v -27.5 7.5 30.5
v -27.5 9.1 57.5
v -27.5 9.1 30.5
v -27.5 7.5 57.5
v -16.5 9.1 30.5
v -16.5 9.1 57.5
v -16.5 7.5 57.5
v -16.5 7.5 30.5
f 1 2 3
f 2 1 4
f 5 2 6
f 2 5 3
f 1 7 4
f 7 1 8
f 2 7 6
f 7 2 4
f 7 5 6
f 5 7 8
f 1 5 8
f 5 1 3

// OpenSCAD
// file: D:/Projects/assembly-workshop/outputs/Screen_Pi_Hue_SCR5-H_2026-10-30/checks/geometry.scad
// SCR5-G; mm; FRONT view: X right, Z up, Y into rack. Glass/plate front Y=0.
// Measured values: work/screen-5in/Dimensions.md. Physical fit/strength UNKNOWN.
part="plate";
DROP=0.45; // coupon winner can be substituted here; all three pins use this DROP
LIP=0.8; LIP_ON=true;
LIP_EDGES=[true,true,false,false]; // left,right,bottom,top; Brian: side lips only, cosmetic
FRAME_STEP=1.5; // measured glass-edge inset to metal LCD frame, left/right only
SHIM=0; // moves rear frame seat and plate-boss mating face back
$fn=48;
GCX=33; GCZ=41.5; PW=252; PH=88.8; PT=4;
GW=120.7; GH=77.2; CLEAR=0.2; WW=GW+2*CLEAR; WH=GH+2*CLEAR;
SEAT=13.3+SHIM; FT=3;
SO=[56.45,34]; BTN_X=[45.5,35.5,25.5];
PCB_TOP=38; GAP=0.10; LEAF_T=0.8;
HOLE=[3.4,40.3,44.7];
BX=[GCX-68,GCX+68]; BZ=[10,72];
// DSI connector X extent is unmeasured: conservative assumed 8 mm inward from PCB edge.
DSI=[GCX-60.5,9.1,GCZ-38+30,8,5.25,21];
module xz(y,d){translate([0,y+d,0])rotate([90,0,0])linear_extrude(d)children();}
// rr/rack_slots copied from SCR5-F; same exact slot centres, outline shifted -0.05 Z to centre 44.4.
module rr(w,h,r){hull()for(x=[-w/2+r,w/2-r],z=[-h/2+r,h/2-r])translate([x,z])circle(r=r);}
module rack_slots(){for(x=[-118.2625,118.2625],z=[6.323,38.127,50.773,82.577])translate([x,z])hull()for(dx=[-1.5,1.5])translate([dx,0])circle(d=7);}
module cyl_y(x,y,z,d,h){translate([x,y,z])rotate([-90,0,0])cylinder(d=d,h=h);}
module window_cut(){
  xz(-0.02,4.04)translate([GCX,GCZ])square([WW,WH],center=true);
  // 0.3 x 45-degree chamfer, square corners, front only.
  translate([GCX,0.3,GCZ])rotate([90,0,0])
    linear_extrude(height=0.3,scale=[(WW+0.6)/WW,(WH+0.6)/WH])square([WW,WH],center=true);
}
module lips(){
  // Cosmetic side ledges only; rear frame/standoffs set depth and retain the screen.
  if(LIP_ON)for(i=[0:3])if(LIP_EDGES[i]){
    if(i<2)translate([GCX+(i==0?-WW/2:WW/2-LIP),2.5,GCZ-GH/2+4])cube([LIP,0.8,GH-8]);
    else translate([GCX-GW/2+4,2.5,GCZ+(i==2?-WH/2:WH/2-LIP)])cube([GW-8,0.8,LIP]);
  }
}
// Leaf/nub/bump geometry copied from SCR5-WP-A, translated to this glass centre.
module leaves(){for(x=BTN_X)translate([GCX+x-1.5,0,GCZ]){
  translate([0,0,PCB_TOP+GAP+0.9+0.1])cube([3,11.8,LEAF_T]);
  translate([0,10.2,PCB_TOP+GAP])cube([3,1.4,1.0+LEAF_T/2]);
  translate([0,10.4,PCB_TOP+GAP+1.0+LEAF_T])cube([3,1.0,0.9]);
}}
module plate(){difference(){union(){
  difference(){xz(0,PT)translate([0,PH/2])rr(PW,PH,2.5);window_cut();}
  for(x=BX,z=BZ)cyl_y(x,3.9,z,8,SEAT-3.9);
  leaves(); lips();
 }
 xz(-0.02,4.04)rack_slots();
 for(x=BTN_X)translate([GCX+x-HOLE[0]/2,-0.02,GCZ+HOLE[1]])cube([HOLE[0],SEAT+FT+0.04,HOLE[2]-HOLE[1]]);
 // Printed-in screw pilots (no heat-set OD assumption): nominal M2.5, fit UNKNOWN.
 for(x=BX,z=BZ)cyl_y(x,SEAT-6,z,2.1,6.02);
 // Rear engraving, 0.5 deep, left field.
 xz(3.5,0.52)translate([-75,40])mirror([1,0])text("SCR5-G",size=6,halign="center",font="Liberation Sans:style=Bold");
}}
module frame_blank(){
  // C-shaped perimeter; no material across the board centre / touch FPC.
  xz(SEAT,FT)translate([GCX,GCZ])difference(){square([132,76],center=true);square([116,60],center=true);}
  for(sx=[-1,1],sz=[-1,1])cyl_y(GCX+sx*SO[0],SEAT,GCZ+sz*SO[1],9,FT);
  for(x=BX,z=BZ)hull(){cyl_y(x,SEAT,z,8,FT);cyl_y(GCX+(x<GCX?-62:62),SEAT,z,8,FT);}
}
module dsi_keepout(){translate([DSI[0]-3,DSI[1]-3,DSI[2]-3])cube([DSI[3]+6,DSI[4]+6,DSI[5]+6]);}
module ribbon_route(){
  // Open left/up corridor 18 mm wide; extends past top of plate.
  translate([GCX-84,6.1,GCZ-11])cube([18,24,65]);
  translate([GCX-84,6.1,GCZ-11])cube([32,24,27]);
}
module frame(){difference(){frame_blank();dsi_keepout();ribbon_route();
 for(sx=[-1,1],sz=[-1,1])cyl_y(GCX+sx*SO[0],SEAT-0.02,GCZ+sz*SO[1],2.8,FT+0.04);
 for(x=BX,z=BZ)cyl_y(x,SEAT-0.02,z,2.8,FT+0.04);
}}
// Pin polygon/cap/notch/dot design copied unchanged from SCR5-WP-A.
module pin(d,dots){s=2*d+0.5;difference(){union(){
 translate([-1.5,0,0])rotate([90,0,90])linear_extrude(3)polygon([
 [-s-0.02,40.5],[10.2,40.5],[10.2,41.0],[11.5,41.0],[11.5+2*d,41.0-d],[15,41.0-d],[15,44.5],[-s-0.02,44.5]]);
 translate([-2.5,-s-1.5,39.6])cube([5,1.5,5.8]);
 }for(i=[0:dots-1])translate([(i-(dots-1)/2)*1.4,-s-1.5-0.01,43.5])rotate([-90,0,0])cylinder(d=0.9,h=0.4);}}
module placed_pin(i){translate([GCX+BTN_X[i],0,GCZ])pin(DROP,i+1);}
// Measured layers: cover glass 0.9 + second glass 1.6, metal frame 3.0,
// open gap 2.0, PCB 1.6. Metal frame inset ~1.5 at LEFT/RIGHT only.
// PCB centred under glass and full metal-frame top/bottom extent remain UNKNOWN.
module glass(){translate([GCX-GW/2,0,GCZ-GH/2])cube([GW,2.5,GH]);}
module lcd(){
  translate([GCX-GW/2+FRAME_STEP,2.5,GCZ-GH/2])cube([GW-2*FRAME_STEP,3.0,GH]);
}
module pcb(){translate([GCX-60.5,7.5,GCZ-38])cube([121,1.6,76]);}
module standoffs(){for(sx=[-1,1],sz=[-1,1])difference(){cyl_y(GCX+sx*SO[0],9.1,GCZ+sz*SO[1],5.5,4.2);cyl_y(GCX+sx*SO[0],9.08,GCZ+sz*SO[1],2.5,4.24);}}
module buttons(){for(x=BTN_X){
 translate([GCX+x-3.5,9.1,GCZ+38-3.4])cube([7,3.6,2.4]);
 translate([GCX+x-1.5,9.1,GCZ+37])cube([3,3.6,1]);
}}
module dsi(){translate([DSI[0],DSI[1],DSI[2]])cube([DSI[3],DSI[4],DSI[5]]);}
module touch(){translate([GCX-10,9.1,GCZ-5])cube([20,2,10]);} // lateral extent unmeasured
module dummy(){glass();lcd();pcb();standoffs();buttons();dsi();touch();}
module assembly(){color("gray")plate();color("orange")frame();for(i=[0:2])color("cyan")placed_pin(i);color([0.2,0.3,0.4,0.4])dummy();}
// main file
include <D:/Projects/assembly-workshop/outputs/Screen_Pi_Hue_SCR5-H_2026-10-30/checks/geometry.scad>
intersection(){pcb();dsi_keepout();}
